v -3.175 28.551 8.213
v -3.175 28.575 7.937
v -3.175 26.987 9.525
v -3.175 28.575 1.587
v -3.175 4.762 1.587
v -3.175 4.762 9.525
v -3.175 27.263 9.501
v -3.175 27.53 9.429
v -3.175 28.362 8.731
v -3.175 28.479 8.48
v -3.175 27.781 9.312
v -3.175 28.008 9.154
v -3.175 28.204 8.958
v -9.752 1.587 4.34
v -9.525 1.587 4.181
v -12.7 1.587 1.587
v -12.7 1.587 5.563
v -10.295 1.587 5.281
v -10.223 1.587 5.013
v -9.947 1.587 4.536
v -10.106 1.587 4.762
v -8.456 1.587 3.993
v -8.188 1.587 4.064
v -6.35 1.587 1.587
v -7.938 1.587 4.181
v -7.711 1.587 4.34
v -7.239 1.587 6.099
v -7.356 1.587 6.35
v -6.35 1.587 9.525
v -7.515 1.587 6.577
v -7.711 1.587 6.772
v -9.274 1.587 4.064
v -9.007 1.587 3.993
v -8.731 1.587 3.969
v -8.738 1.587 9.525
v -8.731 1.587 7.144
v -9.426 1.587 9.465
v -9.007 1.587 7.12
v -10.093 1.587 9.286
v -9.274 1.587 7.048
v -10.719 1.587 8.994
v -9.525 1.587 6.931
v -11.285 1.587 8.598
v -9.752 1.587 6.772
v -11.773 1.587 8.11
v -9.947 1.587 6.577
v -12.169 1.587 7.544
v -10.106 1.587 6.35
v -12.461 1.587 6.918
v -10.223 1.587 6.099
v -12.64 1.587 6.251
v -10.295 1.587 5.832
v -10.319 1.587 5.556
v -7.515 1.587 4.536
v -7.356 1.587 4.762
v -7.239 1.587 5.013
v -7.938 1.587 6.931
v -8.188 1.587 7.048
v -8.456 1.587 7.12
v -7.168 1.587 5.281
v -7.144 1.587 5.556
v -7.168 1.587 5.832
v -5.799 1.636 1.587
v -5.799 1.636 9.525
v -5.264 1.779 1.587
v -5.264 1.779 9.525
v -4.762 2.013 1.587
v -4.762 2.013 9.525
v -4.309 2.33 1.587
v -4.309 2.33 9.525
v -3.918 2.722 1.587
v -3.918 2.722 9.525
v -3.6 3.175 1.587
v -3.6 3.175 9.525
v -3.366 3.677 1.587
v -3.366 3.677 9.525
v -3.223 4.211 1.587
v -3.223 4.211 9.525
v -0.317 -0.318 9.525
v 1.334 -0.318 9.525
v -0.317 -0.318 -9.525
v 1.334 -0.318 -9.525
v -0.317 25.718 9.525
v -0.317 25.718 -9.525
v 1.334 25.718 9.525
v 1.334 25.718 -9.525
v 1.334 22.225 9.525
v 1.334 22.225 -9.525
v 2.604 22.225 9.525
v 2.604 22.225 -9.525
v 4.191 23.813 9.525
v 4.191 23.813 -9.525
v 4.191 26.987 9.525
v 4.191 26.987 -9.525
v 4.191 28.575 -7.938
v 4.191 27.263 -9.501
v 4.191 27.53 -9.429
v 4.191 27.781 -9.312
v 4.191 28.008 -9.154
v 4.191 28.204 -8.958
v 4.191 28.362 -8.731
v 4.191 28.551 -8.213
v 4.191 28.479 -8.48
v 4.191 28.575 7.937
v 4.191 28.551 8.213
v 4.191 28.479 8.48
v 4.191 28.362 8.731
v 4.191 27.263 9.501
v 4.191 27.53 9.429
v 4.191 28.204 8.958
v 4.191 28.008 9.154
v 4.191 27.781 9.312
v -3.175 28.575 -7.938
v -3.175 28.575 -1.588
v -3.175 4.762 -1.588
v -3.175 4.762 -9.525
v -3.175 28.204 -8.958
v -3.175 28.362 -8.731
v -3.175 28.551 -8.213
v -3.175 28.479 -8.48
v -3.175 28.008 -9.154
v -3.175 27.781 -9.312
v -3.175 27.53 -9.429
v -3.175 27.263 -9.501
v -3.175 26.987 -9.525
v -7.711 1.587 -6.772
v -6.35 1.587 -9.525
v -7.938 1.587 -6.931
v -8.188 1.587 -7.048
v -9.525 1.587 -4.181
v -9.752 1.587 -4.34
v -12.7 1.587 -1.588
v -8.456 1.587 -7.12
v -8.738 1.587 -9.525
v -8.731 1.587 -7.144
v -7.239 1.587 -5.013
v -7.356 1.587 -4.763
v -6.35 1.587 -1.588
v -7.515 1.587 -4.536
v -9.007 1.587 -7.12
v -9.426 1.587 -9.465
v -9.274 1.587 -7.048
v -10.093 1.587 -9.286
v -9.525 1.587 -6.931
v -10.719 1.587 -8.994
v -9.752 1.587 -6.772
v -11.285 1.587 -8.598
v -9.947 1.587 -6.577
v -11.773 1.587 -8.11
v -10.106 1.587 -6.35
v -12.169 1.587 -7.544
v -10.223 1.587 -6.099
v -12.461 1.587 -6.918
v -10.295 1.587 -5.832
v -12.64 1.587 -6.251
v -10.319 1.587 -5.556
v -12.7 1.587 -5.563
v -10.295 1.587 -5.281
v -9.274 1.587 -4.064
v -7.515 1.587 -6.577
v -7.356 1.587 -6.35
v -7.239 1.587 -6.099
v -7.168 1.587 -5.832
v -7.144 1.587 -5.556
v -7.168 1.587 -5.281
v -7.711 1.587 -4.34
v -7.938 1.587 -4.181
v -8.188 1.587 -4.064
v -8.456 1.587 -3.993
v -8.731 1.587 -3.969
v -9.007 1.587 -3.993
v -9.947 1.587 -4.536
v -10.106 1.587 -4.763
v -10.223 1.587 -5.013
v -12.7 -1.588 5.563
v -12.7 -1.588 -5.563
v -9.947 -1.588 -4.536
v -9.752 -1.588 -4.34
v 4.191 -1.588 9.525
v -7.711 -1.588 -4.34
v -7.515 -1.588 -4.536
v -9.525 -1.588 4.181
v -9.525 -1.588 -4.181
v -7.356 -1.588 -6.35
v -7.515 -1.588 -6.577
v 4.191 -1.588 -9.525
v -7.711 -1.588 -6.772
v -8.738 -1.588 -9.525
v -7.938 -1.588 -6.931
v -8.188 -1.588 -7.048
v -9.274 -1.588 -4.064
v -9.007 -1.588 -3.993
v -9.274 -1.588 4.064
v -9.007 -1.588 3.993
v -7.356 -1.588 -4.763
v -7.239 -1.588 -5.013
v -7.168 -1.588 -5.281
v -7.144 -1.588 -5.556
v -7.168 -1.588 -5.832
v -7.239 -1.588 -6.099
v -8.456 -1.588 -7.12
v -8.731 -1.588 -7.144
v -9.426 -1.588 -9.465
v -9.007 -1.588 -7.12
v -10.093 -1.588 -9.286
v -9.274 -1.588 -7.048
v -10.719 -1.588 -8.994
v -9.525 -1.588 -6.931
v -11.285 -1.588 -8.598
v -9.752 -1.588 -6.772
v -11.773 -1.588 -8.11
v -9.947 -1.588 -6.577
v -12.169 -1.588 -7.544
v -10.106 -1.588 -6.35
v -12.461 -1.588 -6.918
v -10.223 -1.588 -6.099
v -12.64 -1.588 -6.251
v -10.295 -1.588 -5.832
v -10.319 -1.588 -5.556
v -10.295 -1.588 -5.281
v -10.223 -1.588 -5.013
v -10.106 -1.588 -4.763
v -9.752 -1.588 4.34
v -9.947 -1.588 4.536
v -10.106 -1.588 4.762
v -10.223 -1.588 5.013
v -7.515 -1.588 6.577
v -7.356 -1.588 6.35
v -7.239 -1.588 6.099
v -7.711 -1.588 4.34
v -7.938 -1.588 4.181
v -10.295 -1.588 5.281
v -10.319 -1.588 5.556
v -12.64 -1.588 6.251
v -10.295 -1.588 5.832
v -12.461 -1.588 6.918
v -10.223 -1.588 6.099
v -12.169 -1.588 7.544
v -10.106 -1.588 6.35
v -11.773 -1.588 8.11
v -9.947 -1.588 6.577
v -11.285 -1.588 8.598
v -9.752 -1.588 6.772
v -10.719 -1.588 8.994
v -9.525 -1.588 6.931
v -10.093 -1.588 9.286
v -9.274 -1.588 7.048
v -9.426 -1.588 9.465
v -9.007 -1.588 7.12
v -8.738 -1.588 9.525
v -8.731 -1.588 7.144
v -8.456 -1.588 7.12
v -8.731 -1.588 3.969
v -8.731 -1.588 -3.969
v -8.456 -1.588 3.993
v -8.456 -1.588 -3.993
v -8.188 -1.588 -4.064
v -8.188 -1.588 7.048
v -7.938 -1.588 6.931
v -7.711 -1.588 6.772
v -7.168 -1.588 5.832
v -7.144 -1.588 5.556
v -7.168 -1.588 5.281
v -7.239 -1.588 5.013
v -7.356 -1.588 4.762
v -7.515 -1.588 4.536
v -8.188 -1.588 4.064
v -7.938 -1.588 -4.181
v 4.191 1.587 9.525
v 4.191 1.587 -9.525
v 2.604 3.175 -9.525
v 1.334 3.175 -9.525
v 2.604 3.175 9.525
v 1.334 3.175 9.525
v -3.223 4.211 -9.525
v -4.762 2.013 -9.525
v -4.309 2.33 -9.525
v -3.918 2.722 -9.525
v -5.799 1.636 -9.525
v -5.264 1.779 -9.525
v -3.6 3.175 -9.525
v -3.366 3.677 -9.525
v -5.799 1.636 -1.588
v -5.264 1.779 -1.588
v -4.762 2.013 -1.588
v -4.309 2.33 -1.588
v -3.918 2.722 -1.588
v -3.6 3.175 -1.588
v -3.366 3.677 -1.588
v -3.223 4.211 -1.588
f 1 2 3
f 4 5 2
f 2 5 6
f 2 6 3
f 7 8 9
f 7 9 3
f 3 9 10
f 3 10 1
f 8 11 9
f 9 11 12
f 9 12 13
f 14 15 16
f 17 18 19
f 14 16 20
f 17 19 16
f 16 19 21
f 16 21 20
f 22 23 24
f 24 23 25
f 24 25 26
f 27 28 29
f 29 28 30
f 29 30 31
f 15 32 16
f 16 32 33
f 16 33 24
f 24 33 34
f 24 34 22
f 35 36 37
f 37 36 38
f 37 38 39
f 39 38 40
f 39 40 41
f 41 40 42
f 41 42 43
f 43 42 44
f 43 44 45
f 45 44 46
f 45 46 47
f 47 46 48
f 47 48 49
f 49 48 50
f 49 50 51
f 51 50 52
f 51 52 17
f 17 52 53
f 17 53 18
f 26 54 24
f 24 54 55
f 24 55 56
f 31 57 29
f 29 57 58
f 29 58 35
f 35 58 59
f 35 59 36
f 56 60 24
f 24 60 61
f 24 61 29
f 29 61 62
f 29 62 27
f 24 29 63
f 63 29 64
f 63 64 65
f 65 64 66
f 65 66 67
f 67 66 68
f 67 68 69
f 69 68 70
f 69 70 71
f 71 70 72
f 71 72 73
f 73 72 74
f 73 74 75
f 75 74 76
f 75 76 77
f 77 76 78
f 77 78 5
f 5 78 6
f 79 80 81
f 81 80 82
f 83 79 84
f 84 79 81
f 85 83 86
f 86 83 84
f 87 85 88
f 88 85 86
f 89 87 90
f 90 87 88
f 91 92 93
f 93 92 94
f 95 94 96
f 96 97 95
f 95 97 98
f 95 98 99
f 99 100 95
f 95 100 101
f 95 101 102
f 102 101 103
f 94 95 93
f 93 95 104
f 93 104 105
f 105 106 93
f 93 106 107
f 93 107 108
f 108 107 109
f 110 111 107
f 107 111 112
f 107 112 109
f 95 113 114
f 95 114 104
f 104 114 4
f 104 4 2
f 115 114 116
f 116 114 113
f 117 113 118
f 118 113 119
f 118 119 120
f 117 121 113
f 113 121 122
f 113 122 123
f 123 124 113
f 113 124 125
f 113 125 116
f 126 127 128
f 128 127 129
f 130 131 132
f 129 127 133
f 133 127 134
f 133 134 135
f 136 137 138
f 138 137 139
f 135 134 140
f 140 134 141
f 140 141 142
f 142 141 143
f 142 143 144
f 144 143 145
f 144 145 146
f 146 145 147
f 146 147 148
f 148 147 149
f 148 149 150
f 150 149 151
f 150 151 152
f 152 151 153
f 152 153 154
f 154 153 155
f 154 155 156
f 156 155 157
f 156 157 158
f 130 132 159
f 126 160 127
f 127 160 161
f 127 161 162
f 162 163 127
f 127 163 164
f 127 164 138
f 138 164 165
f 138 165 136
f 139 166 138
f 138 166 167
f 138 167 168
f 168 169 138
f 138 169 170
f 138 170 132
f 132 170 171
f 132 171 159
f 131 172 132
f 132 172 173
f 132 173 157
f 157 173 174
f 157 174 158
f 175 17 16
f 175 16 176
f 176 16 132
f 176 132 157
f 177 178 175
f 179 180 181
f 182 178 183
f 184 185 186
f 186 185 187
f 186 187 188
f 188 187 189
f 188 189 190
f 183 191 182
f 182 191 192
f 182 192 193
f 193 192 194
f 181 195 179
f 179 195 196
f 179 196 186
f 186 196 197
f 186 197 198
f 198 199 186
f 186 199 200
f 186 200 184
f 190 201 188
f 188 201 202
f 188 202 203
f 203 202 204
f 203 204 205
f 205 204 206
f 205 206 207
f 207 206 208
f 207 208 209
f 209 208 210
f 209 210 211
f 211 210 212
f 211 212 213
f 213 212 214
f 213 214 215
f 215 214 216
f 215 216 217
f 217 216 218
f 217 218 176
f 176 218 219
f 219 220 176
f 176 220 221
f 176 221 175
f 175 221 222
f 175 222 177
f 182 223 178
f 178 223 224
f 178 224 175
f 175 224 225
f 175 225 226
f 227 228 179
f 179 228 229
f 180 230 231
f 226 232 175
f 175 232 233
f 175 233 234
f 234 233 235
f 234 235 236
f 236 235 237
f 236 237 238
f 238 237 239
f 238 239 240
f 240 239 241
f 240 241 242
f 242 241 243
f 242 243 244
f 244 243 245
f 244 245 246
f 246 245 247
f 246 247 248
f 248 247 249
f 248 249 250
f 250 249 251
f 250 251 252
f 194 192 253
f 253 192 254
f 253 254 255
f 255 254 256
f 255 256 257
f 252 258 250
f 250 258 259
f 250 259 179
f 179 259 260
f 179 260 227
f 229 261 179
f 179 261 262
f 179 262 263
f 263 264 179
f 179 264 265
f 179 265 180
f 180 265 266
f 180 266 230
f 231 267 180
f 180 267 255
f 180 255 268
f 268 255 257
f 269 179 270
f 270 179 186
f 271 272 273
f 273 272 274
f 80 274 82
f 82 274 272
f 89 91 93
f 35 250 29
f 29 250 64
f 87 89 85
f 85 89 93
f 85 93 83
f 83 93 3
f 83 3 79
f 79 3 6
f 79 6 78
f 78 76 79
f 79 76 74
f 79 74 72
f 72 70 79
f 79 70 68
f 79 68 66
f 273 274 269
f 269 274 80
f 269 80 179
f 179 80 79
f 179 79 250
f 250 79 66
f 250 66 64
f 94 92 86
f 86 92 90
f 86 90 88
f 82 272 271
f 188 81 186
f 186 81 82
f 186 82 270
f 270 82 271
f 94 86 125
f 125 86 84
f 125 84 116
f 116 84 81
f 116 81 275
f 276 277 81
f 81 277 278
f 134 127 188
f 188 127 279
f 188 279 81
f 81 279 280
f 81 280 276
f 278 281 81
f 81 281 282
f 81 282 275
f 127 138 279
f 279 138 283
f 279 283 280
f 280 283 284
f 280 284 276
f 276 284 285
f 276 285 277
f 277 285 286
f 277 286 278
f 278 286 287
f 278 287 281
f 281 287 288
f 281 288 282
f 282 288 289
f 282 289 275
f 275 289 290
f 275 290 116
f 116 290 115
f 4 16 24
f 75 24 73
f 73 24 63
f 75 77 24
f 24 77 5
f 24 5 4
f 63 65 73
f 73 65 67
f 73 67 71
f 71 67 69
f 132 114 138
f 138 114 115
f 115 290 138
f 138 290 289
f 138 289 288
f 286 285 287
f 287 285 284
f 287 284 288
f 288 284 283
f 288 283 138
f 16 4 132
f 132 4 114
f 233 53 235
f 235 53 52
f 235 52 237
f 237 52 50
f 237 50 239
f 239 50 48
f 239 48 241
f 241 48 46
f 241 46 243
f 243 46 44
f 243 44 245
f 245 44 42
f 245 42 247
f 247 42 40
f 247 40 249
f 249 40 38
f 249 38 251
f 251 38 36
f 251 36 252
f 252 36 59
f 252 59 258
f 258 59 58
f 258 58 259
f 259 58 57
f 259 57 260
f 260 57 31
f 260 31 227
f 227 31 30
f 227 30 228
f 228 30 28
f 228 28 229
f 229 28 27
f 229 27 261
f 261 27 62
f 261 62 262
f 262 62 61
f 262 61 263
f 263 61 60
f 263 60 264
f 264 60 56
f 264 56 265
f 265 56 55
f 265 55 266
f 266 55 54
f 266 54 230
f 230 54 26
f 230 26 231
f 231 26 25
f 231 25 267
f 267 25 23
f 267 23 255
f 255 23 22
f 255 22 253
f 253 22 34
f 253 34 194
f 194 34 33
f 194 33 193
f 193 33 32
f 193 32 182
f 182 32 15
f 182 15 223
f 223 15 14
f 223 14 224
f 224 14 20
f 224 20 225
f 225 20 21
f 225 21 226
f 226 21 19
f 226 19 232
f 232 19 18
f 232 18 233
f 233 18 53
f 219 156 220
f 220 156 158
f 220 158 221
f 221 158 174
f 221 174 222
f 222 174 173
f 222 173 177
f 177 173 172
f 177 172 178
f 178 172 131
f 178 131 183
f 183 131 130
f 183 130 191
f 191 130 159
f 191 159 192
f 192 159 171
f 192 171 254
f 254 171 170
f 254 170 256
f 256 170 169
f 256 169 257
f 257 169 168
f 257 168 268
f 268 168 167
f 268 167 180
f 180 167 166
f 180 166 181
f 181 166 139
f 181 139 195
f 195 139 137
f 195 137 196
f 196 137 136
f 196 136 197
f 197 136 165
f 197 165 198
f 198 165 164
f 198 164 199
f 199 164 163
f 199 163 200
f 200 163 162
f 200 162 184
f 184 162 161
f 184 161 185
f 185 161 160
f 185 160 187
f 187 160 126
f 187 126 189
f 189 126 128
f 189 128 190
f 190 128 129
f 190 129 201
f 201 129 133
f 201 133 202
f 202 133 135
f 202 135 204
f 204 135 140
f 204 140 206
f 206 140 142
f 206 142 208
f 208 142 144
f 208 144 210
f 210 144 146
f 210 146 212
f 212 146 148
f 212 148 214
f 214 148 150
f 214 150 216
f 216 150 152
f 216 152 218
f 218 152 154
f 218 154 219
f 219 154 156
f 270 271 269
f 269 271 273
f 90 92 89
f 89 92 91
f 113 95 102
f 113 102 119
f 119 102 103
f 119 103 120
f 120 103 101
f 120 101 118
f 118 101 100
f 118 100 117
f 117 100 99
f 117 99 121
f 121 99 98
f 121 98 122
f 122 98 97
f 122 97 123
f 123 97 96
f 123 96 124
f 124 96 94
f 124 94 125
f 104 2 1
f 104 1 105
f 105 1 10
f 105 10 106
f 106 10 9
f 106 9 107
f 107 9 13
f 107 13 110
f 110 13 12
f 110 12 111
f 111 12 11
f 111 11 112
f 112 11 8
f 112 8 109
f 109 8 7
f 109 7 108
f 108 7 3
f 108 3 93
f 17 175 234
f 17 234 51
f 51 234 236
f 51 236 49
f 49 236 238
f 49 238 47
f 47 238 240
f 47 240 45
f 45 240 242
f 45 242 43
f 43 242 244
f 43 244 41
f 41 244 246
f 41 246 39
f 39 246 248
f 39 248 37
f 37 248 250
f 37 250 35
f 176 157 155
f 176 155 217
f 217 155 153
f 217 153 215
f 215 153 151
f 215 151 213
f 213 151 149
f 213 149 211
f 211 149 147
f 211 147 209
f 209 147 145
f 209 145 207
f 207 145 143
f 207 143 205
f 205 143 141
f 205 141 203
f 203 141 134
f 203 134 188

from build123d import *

# Parameters (mm, degrees)
BOSS_EXTRUDE1_DEPTH = 9.525
FILLET1_R           = 3.175
BOSS_EXTRUDE2_DEPTH = 1.5875
SKETCH3_R           = 1.5875
CUT_EXTRUDE1_DEPTH  = 3.175
CHAMFER1_SIZE       = 1.5875
FILLET2_R           = 1.5875
FILLET3_R           = 3.9624


with BuildPart() as part:
    # Sketch1 → Boss-Extrude1 (new body, symmetric)
    with BuildSketch(Plane.XY):
        Polygon((-0.3175, -0.3175), (-0.3175, 25.7175), (1.3335, 25.7175), (1.3335, 22.225), (4.191, 22.225), (4.191, 28.575), (1.016, 28.575), (-3.175, 28.575), (-3.175, 1.5875), (-12.7, 1.5875), (-12.7, -1.5875), (-3.175, -1.5875), (4.191, -1.5875), (4.191, 0), (4.191, 3.175), (1.3335, 3.175), (1.3335, -0.3175), align=None)
    extrude(amount=BOSS_EXTRUDE1_DEPTH, both=True)

    # Fillet1
    fillet1_edges = [part.edges().sort_by_distance(p)[0] for p in [
        (-3.175, 1.5875, 0),
    ]]
    fillet(fillet1_edges, radius=FILLET1_R)

    # Sketch2 → Boss-Extrude2 (add, symmetric)
    with BuildSketch(Plane.XY):
        Polygon((-3.175, 28.575), (-12.7, 1.5875), (-3.175, 1.5875), align=None)
    extrude(amount=BOSS_EXTRUDE2_DEPTH, both=True)

    # Sketch3 → Cut-Extrude1 (cut)
    with BuildSketch(Plane(origin=(0, 1.5875, 0), x_dir=(1, 0, 0), z_dir=(0, 1, 0))):
        with Locations((-8.73125, -5.55625)):
            Circle(SKETCH3_R)
        with Locations((-8.73125, 5.55625)):
            Circle(SKETCH3_R)
    extrude(amount=-CUT_EXTRUDE1_DEPTH, mode=Mode.SUBTRACT)

    # Chamfer1
    chamfer1_edges = [part.edges().sort_by_distance(p)[0] for p in [
        (4.191, 3.175, 0),
        (4.191, 22.225, 0),
    ]]
    chamfer(chamfer1_edges, length=CHAMFER1_SIZE)

    # Fillet2
    fillet2_edges = [part.edges().sort_by_distance(p)[0] for p in [
        (0.508, 28.575, -9.525),
        (0.508, 28.575, 9.525),
    ]]
    fillet(fillet2_edges, radius=FILLET2_R)

    # Fillet3
    fillet3_edges = [part.edges().sort_by_distance(p)[0] for p in [
        (-12.7, 0, -9.525),
        (-12.7, 0, 9.525),
    ]]
    fillet(fillet3_edges, radius=FILLET3_R)


solid = part.part
